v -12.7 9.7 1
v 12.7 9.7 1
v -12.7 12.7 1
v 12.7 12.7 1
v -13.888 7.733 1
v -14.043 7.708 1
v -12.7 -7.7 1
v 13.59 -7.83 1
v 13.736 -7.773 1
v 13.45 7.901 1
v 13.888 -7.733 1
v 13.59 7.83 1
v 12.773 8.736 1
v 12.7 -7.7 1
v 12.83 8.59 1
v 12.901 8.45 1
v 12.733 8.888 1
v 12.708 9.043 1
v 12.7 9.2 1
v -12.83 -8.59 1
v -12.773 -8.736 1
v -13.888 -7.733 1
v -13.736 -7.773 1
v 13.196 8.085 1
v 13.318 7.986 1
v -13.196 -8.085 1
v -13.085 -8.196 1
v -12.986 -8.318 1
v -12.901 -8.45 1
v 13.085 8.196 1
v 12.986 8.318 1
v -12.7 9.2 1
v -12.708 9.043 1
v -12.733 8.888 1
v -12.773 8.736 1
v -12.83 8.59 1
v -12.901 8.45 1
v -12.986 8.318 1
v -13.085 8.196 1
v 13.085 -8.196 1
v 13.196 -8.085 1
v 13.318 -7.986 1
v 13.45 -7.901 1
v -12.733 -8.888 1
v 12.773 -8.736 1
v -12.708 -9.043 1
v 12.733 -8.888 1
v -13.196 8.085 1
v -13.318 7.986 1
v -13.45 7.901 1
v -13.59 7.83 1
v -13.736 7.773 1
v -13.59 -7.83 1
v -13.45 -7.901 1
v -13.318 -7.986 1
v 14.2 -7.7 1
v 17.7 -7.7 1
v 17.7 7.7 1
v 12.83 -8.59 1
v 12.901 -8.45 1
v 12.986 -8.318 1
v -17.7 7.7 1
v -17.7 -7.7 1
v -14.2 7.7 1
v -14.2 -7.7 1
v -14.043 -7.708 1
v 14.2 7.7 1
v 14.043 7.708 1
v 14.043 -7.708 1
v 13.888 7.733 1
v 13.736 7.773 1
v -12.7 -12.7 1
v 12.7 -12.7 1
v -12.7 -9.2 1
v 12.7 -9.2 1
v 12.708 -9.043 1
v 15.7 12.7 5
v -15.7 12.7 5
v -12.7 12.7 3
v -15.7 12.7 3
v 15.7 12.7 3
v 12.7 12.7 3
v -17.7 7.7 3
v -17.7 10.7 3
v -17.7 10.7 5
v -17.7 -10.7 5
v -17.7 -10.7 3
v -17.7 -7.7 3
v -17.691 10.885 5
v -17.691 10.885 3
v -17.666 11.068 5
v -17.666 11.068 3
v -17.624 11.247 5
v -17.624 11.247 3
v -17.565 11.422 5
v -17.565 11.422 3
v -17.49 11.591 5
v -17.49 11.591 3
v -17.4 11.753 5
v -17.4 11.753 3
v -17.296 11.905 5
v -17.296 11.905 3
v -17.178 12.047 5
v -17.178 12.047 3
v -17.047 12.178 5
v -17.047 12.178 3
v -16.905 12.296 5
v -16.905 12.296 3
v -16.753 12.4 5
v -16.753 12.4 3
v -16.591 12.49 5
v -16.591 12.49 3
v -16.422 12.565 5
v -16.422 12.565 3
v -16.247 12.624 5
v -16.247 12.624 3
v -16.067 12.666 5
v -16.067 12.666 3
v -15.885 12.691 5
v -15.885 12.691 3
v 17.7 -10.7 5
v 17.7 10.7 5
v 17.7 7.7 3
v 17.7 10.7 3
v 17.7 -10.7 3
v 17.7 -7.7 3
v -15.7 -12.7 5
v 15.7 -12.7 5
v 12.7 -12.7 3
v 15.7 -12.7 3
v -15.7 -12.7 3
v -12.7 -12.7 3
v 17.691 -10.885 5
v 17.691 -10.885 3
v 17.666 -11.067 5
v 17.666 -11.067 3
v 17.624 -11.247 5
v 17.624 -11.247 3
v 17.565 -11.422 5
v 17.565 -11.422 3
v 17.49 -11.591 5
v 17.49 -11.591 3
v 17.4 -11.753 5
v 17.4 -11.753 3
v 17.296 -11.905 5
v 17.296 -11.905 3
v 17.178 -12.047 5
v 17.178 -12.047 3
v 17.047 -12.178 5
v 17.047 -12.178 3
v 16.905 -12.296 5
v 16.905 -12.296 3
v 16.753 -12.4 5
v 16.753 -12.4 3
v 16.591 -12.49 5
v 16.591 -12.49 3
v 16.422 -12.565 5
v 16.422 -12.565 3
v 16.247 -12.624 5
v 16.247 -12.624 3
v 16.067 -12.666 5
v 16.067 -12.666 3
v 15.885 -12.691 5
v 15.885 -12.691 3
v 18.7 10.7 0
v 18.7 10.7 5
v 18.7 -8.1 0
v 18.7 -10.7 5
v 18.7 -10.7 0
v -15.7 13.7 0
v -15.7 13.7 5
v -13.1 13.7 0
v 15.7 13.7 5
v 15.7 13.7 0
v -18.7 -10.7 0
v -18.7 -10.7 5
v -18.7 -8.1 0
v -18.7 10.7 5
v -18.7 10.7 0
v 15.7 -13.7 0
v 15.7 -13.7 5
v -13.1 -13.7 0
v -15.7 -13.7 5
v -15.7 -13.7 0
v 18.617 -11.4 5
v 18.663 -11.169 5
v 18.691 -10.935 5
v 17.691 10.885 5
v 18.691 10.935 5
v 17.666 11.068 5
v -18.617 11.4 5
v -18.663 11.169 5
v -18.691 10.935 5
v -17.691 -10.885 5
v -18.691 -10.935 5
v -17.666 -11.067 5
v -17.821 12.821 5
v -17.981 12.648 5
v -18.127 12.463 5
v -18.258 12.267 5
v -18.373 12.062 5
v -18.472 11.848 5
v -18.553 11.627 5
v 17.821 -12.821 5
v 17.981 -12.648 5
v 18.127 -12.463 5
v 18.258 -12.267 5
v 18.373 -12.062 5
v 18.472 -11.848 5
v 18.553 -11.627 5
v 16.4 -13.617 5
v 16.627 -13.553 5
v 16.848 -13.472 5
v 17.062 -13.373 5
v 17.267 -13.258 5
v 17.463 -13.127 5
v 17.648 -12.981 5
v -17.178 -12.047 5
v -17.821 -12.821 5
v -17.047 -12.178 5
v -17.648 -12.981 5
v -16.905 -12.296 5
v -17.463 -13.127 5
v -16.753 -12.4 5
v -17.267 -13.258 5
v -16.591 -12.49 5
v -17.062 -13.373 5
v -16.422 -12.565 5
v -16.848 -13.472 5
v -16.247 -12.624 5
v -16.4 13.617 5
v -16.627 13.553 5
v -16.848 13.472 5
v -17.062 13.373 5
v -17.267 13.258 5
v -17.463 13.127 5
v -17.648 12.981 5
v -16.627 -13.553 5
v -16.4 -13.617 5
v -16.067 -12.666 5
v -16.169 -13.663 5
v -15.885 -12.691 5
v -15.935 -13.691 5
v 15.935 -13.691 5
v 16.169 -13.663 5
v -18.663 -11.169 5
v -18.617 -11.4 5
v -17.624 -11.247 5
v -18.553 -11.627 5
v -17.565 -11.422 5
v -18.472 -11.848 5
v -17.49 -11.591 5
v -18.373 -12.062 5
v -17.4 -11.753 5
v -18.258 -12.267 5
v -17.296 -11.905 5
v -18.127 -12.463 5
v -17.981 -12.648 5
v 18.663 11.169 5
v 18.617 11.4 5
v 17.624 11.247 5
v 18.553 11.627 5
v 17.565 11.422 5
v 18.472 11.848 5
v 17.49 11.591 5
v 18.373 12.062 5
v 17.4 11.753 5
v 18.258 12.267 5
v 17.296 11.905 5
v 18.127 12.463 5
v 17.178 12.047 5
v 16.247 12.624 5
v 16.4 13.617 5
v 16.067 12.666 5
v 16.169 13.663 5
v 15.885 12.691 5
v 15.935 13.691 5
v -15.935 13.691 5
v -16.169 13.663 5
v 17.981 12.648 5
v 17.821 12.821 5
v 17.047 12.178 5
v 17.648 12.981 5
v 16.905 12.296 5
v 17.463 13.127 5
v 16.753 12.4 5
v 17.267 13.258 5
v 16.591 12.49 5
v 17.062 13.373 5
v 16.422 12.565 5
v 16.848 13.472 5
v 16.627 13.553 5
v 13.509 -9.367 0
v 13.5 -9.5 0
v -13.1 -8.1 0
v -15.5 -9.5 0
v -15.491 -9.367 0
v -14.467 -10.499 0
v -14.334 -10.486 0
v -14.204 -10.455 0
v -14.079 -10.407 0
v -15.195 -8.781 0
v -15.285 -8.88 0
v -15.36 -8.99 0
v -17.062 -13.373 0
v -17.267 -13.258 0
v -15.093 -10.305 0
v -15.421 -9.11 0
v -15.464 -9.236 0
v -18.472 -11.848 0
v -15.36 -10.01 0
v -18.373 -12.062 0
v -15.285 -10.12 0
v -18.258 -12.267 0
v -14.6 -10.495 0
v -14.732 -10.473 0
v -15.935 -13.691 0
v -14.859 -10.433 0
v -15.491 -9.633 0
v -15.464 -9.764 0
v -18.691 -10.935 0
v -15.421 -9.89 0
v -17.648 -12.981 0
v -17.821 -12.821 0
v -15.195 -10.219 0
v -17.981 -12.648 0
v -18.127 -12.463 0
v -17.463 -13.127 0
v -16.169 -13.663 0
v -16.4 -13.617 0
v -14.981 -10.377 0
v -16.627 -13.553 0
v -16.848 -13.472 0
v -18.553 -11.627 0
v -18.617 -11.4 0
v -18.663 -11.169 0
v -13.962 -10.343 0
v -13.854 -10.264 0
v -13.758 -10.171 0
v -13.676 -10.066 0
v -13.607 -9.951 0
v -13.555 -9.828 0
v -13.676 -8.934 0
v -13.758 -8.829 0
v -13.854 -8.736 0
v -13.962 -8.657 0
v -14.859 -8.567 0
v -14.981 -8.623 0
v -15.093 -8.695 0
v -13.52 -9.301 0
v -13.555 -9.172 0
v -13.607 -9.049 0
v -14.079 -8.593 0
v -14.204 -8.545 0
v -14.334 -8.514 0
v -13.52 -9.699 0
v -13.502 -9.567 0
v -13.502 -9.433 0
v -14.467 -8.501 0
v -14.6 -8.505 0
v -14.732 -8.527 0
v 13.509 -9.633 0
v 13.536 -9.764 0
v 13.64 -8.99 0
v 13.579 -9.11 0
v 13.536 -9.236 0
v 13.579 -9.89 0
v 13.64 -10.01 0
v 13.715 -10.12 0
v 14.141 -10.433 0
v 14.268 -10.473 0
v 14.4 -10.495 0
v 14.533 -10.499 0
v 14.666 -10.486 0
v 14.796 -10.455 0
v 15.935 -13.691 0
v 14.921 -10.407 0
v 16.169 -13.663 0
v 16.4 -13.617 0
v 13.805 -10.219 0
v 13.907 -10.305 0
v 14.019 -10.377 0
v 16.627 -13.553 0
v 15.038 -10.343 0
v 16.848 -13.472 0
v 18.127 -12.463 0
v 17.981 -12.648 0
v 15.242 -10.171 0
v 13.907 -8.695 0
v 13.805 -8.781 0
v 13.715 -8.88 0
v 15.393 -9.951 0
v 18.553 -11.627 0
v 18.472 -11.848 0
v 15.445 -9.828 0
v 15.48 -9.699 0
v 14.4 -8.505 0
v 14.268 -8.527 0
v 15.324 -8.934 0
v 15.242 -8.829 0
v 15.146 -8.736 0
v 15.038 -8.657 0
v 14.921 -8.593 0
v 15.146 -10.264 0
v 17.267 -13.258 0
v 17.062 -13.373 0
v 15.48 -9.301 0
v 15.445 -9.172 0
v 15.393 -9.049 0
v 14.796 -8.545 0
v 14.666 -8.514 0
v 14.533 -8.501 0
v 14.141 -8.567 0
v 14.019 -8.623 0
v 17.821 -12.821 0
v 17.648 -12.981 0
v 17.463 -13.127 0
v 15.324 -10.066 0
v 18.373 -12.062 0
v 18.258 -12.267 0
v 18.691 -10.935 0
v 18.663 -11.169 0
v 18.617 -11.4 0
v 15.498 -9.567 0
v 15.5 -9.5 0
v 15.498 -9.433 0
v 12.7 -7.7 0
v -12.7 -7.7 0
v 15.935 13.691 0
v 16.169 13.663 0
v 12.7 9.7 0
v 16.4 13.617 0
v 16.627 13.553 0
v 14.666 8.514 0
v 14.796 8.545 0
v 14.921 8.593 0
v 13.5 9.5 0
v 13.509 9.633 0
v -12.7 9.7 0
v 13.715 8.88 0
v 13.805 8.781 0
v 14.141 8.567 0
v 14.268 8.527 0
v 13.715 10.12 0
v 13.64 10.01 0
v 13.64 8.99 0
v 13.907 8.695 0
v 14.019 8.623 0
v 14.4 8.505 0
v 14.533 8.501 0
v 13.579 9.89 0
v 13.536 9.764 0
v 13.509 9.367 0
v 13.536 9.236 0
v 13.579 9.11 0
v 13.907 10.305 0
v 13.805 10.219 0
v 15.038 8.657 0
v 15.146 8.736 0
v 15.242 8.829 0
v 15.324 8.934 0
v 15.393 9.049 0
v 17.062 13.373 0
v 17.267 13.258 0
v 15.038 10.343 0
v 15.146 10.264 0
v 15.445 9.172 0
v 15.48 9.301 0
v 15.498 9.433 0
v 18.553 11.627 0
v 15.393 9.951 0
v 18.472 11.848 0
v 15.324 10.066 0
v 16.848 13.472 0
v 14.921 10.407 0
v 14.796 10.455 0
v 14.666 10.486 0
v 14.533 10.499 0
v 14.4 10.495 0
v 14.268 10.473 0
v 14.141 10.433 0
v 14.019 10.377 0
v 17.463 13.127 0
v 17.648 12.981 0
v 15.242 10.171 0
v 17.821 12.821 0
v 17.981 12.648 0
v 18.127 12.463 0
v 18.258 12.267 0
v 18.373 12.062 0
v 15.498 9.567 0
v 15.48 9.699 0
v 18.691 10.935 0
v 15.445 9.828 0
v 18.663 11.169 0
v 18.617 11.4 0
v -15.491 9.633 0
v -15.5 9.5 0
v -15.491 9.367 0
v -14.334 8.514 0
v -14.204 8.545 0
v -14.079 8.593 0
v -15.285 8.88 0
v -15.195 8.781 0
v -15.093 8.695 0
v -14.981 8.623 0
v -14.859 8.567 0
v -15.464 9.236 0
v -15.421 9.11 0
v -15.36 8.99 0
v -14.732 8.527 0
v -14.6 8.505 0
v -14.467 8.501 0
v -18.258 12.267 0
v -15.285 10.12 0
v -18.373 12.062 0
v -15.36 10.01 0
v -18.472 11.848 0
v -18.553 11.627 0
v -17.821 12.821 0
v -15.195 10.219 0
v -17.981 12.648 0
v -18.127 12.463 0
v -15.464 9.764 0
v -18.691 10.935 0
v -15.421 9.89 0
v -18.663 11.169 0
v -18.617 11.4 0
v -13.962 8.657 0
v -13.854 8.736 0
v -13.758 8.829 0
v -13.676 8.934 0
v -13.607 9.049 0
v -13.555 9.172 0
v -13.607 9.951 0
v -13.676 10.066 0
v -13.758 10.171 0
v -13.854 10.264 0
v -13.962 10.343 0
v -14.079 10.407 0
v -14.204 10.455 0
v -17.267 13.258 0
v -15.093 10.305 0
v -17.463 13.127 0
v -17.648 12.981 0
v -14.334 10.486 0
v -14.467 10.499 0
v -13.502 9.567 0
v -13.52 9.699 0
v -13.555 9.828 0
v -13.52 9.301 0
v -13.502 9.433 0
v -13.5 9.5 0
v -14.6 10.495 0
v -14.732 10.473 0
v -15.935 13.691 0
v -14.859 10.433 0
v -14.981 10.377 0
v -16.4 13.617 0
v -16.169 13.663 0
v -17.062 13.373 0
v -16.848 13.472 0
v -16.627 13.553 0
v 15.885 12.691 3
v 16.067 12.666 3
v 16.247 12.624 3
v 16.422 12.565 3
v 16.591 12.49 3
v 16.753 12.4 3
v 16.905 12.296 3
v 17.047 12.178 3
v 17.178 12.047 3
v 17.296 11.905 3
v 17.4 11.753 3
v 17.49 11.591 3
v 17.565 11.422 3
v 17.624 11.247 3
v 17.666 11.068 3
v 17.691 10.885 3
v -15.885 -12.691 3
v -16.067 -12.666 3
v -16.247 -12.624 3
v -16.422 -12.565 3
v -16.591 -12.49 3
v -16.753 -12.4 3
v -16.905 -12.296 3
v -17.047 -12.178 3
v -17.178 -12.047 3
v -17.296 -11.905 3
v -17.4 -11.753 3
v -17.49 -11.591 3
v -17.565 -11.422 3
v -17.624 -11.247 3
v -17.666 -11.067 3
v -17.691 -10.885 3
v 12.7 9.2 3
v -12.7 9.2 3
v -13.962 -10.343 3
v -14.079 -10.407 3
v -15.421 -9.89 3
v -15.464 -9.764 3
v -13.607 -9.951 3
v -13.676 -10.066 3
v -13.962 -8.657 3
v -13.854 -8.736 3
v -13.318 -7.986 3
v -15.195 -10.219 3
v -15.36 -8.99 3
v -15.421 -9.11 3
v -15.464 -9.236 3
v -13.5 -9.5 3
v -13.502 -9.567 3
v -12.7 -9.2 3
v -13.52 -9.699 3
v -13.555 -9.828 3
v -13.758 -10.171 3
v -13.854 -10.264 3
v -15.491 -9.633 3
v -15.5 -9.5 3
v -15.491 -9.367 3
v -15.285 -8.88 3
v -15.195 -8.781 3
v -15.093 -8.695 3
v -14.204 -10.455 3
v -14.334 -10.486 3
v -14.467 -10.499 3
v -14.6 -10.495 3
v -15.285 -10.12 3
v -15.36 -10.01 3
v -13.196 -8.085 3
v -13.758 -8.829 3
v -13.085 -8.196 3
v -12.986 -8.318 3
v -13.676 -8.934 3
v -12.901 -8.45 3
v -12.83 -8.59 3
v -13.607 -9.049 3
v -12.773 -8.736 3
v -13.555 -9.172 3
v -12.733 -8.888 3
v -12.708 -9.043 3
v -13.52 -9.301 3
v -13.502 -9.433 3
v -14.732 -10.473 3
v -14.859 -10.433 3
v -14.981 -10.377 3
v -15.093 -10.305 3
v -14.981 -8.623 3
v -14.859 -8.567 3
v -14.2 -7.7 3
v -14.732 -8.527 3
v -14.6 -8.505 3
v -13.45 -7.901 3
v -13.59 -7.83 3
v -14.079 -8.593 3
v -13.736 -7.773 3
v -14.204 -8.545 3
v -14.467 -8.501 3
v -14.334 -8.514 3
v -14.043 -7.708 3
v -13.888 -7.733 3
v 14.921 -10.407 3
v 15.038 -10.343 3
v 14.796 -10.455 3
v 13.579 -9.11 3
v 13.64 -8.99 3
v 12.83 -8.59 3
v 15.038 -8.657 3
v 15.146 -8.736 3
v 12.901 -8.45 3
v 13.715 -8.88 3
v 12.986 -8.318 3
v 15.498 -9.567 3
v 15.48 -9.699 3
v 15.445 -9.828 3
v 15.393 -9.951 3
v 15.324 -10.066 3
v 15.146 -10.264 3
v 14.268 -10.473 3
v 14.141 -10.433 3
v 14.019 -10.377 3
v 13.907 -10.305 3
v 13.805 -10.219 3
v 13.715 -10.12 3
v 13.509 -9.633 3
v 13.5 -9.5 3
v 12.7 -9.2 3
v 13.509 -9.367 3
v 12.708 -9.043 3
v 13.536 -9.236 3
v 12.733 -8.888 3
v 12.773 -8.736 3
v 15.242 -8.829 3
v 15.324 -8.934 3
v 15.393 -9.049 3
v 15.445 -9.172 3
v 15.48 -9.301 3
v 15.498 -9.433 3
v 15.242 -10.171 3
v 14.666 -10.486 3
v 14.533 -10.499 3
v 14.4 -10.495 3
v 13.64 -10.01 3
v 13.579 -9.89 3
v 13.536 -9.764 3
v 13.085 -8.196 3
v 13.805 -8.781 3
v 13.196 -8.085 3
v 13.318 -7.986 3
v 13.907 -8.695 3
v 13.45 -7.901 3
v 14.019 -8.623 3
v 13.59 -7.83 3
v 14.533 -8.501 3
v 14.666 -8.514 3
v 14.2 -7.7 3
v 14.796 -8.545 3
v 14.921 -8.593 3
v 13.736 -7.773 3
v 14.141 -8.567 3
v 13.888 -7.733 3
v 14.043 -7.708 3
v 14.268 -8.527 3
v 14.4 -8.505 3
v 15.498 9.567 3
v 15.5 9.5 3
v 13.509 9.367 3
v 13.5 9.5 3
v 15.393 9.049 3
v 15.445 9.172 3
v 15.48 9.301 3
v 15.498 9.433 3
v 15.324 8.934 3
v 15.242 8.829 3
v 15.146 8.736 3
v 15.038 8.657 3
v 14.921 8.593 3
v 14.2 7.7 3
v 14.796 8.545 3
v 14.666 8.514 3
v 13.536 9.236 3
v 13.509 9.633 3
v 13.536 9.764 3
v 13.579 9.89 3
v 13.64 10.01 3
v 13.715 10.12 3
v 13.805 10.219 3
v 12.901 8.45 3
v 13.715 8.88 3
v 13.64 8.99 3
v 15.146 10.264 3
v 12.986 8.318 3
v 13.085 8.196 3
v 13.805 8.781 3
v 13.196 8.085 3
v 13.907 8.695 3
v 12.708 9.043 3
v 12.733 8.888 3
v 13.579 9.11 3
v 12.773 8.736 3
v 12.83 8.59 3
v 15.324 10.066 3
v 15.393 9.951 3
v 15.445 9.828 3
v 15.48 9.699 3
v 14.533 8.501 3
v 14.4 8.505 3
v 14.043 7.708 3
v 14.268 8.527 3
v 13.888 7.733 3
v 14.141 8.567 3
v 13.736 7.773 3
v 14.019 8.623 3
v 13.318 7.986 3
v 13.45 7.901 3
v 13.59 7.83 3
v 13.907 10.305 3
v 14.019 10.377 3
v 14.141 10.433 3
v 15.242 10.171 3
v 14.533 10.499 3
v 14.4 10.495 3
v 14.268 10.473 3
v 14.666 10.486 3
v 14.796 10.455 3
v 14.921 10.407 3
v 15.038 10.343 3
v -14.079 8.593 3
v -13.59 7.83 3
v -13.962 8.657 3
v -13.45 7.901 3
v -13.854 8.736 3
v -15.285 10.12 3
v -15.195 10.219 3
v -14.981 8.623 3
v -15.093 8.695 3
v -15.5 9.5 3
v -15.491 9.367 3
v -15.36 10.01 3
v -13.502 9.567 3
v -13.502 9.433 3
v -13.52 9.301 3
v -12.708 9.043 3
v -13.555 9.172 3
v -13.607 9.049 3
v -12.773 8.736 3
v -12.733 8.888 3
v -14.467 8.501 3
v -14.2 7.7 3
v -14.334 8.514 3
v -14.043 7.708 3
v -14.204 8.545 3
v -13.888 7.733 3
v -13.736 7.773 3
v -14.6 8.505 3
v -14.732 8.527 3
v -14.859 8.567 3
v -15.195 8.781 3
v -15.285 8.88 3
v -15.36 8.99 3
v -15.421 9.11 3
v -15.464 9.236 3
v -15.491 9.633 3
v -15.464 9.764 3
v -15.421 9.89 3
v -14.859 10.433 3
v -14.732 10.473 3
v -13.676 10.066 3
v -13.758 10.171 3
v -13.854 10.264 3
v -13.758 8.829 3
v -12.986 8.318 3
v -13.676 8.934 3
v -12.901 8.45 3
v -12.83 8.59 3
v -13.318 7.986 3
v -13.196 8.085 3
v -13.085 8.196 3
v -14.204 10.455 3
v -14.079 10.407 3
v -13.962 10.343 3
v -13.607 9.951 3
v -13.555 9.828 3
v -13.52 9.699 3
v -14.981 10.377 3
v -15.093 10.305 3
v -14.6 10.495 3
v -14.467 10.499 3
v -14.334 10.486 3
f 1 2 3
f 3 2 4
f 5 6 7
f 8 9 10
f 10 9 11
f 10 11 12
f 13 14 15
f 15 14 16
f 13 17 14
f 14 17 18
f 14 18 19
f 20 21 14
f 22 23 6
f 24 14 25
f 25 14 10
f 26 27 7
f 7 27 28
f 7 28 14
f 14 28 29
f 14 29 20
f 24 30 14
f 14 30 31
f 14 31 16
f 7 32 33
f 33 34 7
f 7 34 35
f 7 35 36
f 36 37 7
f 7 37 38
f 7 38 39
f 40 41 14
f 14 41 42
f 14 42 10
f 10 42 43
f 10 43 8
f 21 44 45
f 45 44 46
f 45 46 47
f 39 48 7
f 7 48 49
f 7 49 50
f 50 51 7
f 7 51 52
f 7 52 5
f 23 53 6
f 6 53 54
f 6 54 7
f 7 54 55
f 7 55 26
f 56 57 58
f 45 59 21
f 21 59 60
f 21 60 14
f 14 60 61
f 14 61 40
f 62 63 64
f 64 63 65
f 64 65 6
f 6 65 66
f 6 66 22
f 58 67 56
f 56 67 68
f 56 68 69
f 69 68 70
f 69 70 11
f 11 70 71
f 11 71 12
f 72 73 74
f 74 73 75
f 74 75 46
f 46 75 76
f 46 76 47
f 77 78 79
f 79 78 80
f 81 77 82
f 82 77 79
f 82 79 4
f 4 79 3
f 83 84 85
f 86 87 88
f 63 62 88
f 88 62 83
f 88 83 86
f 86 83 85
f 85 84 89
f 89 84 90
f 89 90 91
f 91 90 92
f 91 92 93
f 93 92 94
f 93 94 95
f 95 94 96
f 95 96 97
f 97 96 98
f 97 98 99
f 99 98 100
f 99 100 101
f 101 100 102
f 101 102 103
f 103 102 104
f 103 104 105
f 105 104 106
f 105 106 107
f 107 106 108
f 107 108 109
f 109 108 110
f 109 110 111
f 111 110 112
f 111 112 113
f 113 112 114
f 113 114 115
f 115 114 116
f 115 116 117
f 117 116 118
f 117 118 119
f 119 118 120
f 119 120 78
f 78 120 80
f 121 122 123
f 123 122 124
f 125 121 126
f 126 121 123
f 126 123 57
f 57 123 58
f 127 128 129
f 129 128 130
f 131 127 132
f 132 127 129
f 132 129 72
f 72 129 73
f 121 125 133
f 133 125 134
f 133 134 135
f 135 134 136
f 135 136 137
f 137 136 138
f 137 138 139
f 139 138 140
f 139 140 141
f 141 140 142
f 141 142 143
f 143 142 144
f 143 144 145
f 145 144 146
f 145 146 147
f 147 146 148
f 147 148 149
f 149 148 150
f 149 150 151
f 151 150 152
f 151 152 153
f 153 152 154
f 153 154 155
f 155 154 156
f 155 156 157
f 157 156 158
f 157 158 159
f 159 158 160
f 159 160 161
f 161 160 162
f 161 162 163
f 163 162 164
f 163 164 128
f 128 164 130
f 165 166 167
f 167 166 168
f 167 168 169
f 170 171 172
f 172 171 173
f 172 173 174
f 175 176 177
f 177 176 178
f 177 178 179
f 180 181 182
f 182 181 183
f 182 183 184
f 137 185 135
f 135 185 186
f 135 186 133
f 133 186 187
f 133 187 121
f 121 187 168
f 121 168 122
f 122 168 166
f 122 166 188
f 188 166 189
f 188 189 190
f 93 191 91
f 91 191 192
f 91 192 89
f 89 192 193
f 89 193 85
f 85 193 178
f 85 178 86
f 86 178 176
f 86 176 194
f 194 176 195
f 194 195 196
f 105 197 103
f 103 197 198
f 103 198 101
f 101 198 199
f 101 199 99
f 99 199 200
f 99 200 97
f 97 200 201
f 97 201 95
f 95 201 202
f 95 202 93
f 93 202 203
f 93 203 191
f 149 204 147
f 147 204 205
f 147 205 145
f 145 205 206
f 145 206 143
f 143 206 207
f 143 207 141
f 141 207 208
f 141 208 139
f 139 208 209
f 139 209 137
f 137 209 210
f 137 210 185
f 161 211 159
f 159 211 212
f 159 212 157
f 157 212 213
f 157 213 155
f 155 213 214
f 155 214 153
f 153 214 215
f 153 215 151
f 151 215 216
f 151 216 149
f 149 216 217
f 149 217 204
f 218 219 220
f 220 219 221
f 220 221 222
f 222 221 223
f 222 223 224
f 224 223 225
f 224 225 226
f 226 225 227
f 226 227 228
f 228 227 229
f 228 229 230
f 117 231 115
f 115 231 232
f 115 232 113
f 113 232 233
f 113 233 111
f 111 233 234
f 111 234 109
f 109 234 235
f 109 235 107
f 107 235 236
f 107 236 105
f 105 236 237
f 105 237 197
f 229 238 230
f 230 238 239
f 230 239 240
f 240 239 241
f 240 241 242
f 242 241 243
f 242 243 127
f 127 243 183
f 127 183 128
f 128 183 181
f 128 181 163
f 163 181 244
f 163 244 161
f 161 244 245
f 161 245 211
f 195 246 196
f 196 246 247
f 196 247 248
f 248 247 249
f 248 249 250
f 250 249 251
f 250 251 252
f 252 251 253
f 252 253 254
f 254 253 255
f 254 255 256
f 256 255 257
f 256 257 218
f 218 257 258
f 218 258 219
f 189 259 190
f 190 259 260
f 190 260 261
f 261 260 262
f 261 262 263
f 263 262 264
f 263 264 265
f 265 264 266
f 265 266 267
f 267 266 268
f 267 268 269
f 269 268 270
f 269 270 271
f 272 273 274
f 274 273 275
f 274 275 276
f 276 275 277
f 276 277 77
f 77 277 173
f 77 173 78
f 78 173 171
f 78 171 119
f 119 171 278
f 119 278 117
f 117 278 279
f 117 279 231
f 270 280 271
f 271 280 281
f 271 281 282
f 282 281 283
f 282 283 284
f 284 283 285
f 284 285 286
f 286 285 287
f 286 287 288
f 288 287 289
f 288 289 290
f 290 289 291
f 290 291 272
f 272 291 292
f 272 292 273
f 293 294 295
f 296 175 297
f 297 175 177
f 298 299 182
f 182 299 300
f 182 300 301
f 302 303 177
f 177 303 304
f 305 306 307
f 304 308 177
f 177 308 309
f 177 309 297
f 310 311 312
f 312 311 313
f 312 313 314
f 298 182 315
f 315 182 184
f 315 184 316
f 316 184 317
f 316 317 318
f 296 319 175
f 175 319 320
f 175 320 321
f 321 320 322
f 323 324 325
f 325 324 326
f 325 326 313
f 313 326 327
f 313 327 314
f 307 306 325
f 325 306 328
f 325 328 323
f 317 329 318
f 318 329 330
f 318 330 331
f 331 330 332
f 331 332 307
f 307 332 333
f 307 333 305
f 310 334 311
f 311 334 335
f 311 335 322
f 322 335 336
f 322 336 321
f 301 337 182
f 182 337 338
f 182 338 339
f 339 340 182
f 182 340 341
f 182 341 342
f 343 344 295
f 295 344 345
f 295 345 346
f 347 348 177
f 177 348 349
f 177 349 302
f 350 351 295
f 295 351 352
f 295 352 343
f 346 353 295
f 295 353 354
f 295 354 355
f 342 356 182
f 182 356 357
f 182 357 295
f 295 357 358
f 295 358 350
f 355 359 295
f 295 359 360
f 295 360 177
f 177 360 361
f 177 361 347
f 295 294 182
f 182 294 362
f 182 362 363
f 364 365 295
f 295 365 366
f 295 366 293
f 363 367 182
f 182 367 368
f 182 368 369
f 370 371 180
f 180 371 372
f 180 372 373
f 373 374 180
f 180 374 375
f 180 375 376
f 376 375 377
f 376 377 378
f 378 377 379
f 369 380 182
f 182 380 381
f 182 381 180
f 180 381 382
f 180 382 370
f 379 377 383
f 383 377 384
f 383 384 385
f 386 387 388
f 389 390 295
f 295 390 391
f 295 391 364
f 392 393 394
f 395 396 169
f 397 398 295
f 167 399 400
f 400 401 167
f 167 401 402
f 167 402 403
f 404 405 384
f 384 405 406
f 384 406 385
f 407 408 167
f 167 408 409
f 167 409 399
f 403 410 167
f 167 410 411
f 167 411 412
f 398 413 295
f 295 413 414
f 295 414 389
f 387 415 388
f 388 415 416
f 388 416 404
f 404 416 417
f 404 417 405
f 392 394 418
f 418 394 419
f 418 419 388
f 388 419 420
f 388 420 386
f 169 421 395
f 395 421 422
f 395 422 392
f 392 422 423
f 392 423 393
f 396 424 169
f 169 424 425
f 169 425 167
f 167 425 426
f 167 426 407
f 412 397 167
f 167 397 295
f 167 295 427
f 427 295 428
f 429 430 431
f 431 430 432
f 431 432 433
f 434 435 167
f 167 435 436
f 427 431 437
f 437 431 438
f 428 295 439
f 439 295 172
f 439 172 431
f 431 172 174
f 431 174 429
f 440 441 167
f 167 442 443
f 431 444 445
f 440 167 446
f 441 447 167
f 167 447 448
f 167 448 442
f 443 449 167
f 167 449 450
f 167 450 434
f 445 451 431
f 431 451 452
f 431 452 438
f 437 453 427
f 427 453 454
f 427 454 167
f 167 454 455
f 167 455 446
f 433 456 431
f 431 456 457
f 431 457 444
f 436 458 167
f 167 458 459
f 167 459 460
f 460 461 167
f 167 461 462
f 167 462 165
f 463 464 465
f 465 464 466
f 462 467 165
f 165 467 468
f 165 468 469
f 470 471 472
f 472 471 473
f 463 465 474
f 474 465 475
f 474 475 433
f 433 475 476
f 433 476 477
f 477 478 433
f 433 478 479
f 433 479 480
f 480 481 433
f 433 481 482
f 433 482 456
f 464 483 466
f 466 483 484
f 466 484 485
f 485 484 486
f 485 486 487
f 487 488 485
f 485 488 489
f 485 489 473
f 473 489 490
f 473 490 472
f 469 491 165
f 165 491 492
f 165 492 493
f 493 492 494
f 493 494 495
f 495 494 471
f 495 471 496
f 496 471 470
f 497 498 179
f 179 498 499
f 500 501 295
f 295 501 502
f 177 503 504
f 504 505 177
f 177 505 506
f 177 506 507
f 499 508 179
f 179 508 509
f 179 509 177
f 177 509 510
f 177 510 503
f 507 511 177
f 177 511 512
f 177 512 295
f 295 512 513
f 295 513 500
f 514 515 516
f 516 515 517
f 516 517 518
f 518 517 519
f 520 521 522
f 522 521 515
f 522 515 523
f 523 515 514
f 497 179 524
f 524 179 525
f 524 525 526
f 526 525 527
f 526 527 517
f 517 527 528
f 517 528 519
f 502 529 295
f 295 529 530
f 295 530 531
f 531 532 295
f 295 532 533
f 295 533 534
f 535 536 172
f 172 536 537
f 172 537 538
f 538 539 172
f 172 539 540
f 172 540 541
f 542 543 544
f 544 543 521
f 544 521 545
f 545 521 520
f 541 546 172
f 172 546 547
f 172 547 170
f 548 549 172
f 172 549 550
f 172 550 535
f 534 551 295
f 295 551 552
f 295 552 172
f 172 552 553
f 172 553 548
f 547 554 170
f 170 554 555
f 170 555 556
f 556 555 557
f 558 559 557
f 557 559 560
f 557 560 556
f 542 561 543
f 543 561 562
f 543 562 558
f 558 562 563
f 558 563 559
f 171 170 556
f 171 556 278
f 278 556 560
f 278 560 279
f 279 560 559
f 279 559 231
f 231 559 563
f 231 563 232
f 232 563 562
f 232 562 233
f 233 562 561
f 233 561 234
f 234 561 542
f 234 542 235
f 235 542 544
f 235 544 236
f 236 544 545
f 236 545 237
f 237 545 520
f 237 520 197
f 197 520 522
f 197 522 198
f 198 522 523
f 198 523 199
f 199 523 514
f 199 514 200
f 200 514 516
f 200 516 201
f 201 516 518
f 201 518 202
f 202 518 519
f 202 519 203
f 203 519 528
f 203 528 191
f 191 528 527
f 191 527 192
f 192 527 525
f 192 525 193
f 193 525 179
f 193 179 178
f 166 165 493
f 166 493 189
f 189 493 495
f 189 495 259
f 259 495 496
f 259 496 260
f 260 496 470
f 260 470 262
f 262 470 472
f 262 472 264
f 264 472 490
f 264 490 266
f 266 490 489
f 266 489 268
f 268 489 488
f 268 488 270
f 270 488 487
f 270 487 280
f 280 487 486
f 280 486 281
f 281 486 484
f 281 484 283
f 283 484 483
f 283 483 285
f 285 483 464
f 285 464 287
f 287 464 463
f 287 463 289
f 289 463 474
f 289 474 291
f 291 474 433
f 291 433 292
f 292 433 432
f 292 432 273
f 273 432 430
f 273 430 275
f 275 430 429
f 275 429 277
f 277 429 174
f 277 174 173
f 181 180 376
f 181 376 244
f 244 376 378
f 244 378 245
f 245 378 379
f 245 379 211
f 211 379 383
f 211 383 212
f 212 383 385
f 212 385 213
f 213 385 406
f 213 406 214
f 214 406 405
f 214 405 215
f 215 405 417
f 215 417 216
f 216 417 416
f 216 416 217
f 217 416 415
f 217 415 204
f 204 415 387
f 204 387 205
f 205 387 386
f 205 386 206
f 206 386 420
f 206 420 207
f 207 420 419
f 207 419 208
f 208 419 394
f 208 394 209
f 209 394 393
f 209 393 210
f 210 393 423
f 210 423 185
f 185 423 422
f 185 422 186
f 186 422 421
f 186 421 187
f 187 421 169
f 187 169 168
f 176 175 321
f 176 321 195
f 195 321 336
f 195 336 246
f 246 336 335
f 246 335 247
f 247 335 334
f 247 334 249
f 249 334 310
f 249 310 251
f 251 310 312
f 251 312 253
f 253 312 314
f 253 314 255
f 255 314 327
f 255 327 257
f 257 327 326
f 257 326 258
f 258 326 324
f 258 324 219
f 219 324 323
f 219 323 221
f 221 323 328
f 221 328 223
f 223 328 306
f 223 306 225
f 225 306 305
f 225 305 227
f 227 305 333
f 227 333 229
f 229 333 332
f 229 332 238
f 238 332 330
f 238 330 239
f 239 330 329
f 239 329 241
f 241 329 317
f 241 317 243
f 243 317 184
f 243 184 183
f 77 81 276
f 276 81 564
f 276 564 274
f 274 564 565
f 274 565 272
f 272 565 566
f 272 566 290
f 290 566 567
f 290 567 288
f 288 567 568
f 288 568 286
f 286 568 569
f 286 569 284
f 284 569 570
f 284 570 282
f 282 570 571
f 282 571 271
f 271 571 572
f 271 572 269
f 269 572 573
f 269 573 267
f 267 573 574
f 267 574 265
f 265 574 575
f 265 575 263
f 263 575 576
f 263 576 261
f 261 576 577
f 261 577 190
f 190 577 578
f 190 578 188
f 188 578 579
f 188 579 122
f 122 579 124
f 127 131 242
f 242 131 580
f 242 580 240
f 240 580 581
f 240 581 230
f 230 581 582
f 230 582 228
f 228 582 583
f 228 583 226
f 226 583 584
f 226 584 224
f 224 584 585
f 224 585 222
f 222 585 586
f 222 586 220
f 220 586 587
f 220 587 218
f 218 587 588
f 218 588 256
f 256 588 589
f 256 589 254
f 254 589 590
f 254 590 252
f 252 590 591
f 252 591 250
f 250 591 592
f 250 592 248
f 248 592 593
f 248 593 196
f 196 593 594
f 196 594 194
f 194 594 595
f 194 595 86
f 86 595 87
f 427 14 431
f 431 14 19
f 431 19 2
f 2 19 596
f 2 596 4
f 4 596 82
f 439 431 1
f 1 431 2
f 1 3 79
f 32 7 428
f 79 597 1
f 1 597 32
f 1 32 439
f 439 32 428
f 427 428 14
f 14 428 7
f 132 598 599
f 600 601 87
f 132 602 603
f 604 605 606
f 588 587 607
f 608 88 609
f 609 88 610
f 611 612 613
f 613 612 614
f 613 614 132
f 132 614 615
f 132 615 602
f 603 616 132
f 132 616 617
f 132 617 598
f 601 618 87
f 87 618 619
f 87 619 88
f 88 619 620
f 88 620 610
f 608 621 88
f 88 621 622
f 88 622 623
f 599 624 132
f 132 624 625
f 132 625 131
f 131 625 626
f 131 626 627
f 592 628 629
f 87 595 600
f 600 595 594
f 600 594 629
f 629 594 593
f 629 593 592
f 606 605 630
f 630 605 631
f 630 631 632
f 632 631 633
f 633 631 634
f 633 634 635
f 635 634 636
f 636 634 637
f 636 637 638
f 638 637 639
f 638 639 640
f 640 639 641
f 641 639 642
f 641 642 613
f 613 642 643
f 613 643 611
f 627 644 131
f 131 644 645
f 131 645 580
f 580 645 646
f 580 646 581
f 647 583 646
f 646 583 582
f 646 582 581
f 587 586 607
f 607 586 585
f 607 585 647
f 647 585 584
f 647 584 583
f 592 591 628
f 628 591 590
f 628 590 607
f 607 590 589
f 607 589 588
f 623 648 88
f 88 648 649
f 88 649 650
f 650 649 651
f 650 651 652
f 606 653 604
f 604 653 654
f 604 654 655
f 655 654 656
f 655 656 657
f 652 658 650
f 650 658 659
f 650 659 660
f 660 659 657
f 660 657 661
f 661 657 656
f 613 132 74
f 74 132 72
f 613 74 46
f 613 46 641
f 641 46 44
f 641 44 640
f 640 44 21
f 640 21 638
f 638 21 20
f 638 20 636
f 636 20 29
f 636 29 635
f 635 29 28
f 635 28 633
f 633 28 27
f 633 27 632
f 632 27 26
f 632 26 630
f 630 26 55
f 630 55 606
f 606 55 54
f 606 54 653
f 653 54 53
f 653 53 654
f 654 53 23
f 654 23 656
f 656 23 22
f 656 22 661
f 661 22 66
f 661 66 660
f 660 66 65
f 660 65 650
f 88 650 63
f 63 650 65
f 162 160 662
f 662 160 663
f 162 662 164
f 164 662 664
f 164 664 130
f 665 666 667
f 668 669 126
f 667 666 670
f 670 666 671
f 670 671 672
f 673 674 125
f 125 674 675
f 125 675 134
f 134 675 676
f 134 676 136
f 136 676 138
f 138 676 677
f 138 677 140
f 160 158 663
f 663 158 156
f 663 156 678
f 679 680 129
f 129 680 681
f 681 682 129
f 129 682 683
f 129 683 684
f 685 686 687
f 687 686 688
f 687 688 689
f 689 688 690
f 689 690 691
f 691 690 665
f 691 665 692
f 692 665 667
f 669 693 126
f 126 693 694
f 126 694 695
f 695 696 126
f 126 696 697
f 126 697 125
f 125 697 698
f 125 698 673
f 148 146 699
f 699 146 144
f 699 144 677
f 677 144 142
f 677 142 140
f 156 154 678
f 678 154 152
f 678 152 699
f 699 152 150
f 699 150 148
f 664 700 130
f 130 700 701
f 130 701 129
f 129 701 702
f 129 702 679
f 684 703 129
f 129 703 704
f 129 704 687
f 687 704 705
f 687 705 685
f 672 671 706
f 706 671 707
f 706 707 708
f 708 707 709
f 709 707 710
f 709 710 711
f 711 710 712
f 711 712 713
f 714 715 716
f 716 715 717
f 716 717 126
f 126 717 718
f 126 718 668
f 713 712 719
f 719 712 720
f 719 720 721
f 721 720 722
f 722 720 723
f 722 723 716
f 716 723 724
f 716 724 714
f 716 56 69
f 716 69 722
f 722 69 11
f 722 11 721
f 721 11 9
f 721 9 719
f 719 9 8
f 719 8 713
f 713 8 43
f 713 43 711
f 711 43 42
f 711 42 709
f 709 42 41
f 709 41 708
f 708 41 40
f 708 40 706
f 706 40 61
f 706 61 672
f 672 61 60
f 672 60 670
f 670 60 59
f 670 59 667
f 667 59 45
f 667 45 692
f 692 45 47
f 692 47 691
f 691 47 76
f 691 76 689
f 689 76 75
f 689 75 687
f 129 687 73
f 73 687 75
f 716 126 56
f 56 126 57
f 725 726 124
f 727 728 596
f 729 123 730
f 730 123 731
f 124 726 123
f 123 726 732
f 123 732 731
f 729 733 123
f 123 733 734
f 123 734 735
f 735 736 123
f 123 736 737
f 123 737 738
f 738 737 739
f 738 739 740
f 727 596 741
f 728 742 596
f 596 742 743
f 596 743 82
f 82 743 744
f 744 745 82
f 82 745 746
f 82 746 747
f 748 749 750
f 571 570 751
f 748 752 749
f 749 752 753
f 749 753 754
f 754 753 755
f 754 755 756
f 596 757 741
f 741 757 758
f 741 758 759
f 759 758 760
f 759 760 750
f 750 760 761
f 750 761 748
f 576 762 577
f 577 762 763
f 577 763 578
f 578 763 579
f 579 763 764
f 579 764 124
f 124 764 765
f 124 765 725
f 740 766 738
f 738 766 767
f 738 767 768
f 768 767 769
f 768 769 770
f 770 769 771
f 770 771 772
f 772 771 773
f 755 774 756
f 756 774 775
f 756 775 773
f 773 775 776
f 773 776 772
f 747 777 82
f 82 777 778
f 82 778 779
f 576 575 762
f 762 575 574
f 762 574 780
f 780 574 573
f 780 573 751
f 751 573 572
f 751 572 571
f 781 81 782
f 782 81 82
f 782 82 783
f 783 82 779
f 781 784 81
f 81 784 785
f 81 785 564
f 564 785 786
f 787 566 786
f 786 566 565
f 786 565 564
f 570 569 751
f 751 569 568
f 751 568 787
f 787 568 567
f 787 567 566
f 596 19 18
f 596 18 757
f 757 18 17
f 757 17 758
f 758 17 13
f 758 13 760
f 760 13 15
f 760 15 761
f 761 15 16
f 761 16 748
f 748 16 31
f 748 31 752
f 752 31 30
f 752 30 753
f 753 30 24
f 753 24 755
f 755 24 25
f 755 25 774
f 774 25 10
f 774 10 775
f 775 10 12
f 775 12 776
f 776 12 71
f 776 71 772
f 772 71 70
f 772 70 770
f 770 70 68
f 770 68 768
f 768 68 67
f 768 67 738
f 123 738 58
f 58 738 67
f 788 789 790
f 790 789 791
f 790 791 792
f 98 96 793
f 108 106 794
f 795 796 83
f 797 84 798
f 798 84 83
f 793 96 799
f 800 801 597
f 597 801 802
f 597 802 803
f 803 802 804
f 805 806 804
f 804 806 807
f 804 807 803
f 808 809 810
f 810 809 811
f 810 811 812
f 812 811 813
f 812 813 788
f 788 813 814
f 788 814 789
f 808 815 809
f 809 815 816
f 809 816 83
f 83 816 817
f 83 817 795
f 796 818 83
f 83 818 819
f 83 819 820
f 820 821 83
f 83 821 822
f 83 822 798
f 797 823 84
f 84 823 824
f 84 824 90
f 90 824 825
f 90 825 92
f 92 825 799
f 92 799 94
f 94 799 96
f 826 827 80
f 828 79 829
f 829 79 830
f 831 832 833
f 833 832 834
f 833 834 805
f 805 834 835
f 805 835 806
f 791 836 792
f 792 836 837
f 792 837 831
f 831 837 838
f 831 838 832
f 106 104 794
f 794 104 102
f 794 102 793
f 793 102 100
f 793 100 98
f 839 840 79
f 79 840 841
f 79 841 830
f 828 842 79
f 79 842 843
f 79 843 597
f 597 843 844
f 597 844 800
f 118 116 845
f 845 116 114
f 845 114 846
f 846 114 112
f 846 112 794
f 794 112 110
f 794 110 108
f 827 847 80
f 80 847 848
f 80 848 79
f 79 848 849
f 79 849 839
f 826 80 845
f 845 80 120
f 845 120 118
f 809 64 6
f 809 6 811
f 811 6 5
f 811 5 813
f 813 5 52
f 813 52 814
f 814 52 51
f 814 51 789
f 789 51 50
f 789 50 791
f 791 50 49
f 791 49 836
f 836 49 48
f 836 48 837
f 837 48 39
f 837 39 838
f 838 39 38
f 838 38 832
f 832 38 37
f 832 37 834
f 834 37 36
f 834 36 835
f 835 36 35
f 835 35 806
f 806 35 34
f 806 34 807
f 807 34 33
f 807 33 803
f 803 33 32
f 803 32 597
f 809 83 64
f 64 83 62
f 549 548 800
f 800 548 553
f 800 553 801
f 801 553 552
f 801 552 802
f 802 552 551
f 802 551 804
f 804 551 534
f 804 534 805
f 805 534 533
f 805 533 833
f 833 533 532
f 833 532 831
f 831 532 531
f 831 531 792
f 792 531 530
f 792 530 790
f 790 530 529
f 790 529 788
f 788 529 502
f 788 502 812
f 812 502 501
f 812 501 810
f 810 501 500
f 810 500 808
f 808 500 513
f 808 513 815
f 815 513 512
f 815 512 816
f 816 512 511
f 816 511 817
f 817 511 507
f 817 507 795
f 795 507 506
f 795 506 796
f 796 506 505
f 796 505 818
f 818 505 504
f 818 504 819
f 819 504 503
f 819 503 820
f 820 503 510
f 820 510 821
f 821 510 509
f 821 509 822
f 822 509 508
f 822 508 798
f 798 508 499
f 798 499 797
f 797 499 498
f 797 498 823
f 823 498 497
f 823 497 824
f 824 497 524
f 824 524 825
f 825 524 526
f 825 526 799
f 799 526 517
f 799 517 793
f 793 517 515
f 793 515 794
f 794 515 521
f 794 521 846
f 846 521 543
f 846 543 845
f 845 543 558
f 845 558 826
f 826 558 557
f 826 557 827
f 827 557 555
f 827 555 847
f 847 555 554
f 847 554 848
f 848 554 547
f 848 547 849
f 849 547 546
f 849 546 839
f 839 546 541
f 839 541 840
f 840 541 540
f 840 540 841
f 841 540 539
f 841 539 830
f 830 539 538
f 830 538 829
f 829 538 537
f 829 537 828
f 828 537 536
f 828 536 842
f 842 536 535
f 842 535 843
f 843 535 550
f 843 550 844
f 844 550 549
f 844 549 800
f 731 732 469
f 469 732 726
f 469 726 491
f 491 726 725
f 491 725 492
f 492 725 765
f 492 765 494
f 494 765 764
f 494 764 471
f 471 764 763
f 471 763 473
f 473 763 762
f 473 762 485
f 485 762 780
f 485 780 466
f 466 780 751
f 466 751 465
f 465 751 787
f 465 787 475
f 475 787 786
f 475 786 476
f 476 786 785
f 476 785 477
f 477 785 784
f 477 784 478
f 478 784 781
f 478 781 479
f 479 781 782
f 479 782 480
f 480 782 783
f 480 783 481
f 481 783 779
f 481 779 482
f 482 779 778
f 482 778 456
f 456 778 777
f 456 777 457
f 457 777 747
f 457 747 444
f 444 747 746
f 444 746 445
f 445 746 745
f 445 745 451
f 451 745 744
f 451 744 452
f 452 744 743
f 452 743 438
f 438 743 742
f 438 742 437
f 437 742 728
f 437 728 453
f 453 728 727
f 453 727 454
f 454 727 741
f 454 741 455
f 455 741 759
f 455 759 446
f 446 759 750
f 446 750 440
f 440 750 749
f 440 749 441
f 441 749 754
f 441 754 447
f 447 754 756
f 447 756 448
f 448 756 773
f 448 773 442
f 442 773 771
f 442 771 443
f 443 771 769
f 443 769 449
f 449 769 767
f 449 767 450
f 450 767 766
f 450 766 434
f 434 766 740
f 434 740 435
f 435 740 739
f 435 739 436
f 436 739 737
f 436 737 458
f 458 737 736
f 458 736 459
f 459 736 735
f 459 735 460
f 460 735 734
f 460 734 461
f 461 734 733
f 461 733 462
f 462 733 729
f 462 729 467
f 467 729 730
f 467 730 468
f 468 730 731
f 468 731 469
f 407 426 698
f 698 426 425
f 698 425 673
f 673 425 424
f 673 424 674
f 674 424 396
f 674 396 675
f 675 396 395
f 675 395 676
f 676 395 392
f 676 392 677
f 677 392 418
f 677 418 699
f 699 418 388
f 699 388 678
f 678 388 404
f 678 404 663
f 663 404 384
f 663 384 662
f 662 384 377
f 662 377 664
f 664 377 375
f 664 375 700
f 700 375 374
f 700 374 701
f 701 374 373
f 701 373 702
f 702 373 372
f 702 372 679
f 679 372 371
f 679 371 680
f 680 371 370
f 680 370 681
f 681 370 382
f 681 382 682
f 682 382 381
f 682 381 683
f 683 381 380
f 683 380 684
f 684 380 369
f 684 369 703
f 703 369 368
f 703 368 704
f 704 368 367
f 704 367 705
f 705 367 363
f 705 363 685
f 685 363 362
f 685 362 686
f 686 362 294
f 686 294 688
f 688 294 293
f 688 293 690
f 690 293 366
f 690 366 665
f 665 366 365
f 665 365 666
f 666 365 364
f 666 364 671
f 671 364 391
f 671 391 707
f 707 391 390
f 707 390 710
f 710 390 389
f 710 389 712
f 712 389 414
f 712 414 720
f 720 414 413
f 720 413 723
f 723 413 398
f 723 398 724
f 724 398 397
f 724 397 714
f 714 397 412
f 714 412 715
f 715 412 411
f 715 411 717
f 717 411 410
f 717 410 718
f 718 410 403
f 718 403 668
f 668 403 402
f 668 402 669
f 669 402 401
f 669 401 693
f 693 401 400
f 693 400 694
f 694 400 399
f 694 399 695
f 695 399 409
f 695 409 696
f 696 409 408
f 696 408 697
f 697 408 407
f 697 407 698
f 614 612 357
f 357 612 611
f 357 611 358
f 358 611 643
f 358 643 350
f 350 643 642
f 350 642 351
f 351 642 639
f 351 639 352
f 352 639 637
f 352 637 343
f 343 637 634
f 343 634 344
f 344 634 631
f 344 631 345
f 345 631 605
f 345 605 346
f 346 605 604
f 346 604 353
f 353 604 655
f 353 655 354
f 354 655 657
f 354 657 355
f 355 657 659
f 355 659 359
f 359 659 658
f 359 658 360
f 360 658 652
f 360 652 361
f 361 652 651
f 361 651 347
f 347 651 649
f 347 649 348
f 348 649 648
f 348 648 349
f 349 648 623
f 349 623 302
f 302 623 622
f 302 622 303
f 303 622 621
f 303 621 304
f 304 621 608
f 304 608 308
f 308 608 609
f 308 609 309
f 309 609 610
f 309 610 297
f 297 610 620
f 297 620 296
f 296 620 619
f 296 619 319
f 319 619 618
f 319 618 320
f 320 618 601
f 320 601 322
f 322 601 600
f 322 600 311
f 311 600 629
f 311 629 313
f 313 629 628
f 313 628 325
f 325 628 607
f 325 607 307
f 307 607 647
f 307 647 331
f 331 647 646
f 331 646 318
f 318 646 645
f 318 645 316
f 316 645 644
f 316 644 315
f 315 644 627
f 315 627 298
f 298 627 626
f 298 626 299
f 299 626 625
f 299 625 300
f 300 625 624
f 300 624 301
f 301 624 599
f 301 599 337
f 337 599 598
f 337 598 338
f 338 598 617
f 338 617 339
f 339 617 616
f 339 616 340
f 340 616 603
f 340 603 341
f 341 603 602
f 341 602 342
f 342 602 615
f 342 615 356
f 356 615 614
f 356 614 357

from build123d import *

# Parameters (mm, degrees)
SKETCH_1_W          = 37.4
SKETCH_1_H          = 27.4
EXTRUDE_1_DEPTH     = 5
FILLET_1_R          = 3
SHELL_1_T           = -1
SKETCH_2_W          = 25.4
SKETCH_2_H          = 17.4
CUT_EXTRUDE_1_DEPTH = 10
EXTRUDE_2_DEPTH     = 2
SKETCH_4_R          = 1
CUT_EXTRUDE_2_DEPTH = 24.714552494


with BuildPart() as part:
    # 草图1 → 凸台-拉伸1 (new body)
    with BuildSketch(Plane.XY):
        Rectangle(SKETCH_1_W, SKETCH_1_H)
    extrude(amount=EXTRUDE_1_DEPTH)

    # 圆角1
    fillet_1_edges = [part.edges().sort_by_distance(p)[0] for p in [
        (18.7, -13.7, 2.5),
        (-18.7, -13.7, 2.5),
        (-18.7, 13.7, 2.5),
        (18.7, 13.7, 2.5),
    ]]
    fillet(fillet_1_edges, radius=FILLET_1_R)

    # 抽壳1
    shell_1_openings = [part.faces().sort_by_distance(p)[0] for p in [
        (0, 0, 5),
    ]]
    offset(amount=SHELL_1_T, openings=shell_1_openings, kind=Kind.INTERSECTION)

    # 草图2 → 切除-拉伸1 (cut)
    with BuildSketch(Plane(origin=(0, 0, 0), x_dir=(-1, 0, 0), z_dir=(0, 0, -1))):
        with Locations((0, 1)):
            Rectangle(SKETCH_2_W, SKETCH_2_H)
    extrude(amount=-CUT_EXTRUDE_1_DEPTH, mode=Mode.SUBTRACT)

    # 草图3 → 凸台-拉伸2 (add)
    with BuildSketch(Plane.XY.offset(1)):
        with BuildLine():
            Line((-17.7, -7.7), (-14.2, -7.7))
            ThreePointArc((-14.2, -7.7), (-13.139339828, -8.139339828), (-12.7, -9.2))
            Line((-12.7, -9.2), (-12.7, -12.7))
            Line((-12.7, -12.7), (-17.7, -12.7))
            Line((-17.7, -12.7), (-17.7, -7.7))
        make_face()
        with BuildLine():
            Line((12.7, -9.2), (12.7, -12.7))
            Line((12.7, -12.7), (17.7, -12.7))
            Line((17.7, -12.7), (17.7, -7.7))
            Line((17.7, -7.7), (14.2, -7.7))
            ThreePointArc((14.2, -7.7), (13.139339828, -8.139339828), (12.7, -9.2))
        make_face()
        with BuildLine():
            Line((17.7, 7.7), (14.2, 7.7))
            ThreePointArc((14.2, 7.7), (13.139339828, 8.139339828), (12.7, 9.2))
            Line((12.7, 9.2), (12.7, 12.7))
            Line((12.7, 12.7), (17.7, 12.7))
            Line((17.7, 12.7), (17.7, 7.7))
        make_face()
        with BuildLine():
            Line((-12.7, 9.2), (-12.7, 12.7))
            Line((-12.7, 12.7), (-17.7, 12.7))
            Line((-17.7, 12.7), (-17.7, 7.7))
            Line((-17.7, 7.7), (-14.2, 7.7))
            ThreePointArc((-14.2, 7.7), (-13.139339828, 8.139339828), (-12.7, 9.2))
        make_face()
    extrude(amount=EXTRUDE_2_DEPTH)

    # 草图4 → 切除-拉伸2 (cut, through all)
    with BuildSketch(Plane(origin=(0, 0, 0), x_dir=(-1, 0, 0), z_dir=(0, 0, -1))):
        with Locations((14.5, -9.5)):
            Circle(SKETCH_4_R)
        with Locations((14.5, 9.5)):
            Circle(SKETCH_4_R)
        with Locations((-14.5, 9.5)):
            Circle(SKETCH_4_R)
        with Locations((-14.5, -9.5)):
            Circle(SKETCH_4_R)
    extrude(amount=-CUT_EXTRUDE_2_DEPTH, mode=Mode.SUBTRACT)


solid = part.part
